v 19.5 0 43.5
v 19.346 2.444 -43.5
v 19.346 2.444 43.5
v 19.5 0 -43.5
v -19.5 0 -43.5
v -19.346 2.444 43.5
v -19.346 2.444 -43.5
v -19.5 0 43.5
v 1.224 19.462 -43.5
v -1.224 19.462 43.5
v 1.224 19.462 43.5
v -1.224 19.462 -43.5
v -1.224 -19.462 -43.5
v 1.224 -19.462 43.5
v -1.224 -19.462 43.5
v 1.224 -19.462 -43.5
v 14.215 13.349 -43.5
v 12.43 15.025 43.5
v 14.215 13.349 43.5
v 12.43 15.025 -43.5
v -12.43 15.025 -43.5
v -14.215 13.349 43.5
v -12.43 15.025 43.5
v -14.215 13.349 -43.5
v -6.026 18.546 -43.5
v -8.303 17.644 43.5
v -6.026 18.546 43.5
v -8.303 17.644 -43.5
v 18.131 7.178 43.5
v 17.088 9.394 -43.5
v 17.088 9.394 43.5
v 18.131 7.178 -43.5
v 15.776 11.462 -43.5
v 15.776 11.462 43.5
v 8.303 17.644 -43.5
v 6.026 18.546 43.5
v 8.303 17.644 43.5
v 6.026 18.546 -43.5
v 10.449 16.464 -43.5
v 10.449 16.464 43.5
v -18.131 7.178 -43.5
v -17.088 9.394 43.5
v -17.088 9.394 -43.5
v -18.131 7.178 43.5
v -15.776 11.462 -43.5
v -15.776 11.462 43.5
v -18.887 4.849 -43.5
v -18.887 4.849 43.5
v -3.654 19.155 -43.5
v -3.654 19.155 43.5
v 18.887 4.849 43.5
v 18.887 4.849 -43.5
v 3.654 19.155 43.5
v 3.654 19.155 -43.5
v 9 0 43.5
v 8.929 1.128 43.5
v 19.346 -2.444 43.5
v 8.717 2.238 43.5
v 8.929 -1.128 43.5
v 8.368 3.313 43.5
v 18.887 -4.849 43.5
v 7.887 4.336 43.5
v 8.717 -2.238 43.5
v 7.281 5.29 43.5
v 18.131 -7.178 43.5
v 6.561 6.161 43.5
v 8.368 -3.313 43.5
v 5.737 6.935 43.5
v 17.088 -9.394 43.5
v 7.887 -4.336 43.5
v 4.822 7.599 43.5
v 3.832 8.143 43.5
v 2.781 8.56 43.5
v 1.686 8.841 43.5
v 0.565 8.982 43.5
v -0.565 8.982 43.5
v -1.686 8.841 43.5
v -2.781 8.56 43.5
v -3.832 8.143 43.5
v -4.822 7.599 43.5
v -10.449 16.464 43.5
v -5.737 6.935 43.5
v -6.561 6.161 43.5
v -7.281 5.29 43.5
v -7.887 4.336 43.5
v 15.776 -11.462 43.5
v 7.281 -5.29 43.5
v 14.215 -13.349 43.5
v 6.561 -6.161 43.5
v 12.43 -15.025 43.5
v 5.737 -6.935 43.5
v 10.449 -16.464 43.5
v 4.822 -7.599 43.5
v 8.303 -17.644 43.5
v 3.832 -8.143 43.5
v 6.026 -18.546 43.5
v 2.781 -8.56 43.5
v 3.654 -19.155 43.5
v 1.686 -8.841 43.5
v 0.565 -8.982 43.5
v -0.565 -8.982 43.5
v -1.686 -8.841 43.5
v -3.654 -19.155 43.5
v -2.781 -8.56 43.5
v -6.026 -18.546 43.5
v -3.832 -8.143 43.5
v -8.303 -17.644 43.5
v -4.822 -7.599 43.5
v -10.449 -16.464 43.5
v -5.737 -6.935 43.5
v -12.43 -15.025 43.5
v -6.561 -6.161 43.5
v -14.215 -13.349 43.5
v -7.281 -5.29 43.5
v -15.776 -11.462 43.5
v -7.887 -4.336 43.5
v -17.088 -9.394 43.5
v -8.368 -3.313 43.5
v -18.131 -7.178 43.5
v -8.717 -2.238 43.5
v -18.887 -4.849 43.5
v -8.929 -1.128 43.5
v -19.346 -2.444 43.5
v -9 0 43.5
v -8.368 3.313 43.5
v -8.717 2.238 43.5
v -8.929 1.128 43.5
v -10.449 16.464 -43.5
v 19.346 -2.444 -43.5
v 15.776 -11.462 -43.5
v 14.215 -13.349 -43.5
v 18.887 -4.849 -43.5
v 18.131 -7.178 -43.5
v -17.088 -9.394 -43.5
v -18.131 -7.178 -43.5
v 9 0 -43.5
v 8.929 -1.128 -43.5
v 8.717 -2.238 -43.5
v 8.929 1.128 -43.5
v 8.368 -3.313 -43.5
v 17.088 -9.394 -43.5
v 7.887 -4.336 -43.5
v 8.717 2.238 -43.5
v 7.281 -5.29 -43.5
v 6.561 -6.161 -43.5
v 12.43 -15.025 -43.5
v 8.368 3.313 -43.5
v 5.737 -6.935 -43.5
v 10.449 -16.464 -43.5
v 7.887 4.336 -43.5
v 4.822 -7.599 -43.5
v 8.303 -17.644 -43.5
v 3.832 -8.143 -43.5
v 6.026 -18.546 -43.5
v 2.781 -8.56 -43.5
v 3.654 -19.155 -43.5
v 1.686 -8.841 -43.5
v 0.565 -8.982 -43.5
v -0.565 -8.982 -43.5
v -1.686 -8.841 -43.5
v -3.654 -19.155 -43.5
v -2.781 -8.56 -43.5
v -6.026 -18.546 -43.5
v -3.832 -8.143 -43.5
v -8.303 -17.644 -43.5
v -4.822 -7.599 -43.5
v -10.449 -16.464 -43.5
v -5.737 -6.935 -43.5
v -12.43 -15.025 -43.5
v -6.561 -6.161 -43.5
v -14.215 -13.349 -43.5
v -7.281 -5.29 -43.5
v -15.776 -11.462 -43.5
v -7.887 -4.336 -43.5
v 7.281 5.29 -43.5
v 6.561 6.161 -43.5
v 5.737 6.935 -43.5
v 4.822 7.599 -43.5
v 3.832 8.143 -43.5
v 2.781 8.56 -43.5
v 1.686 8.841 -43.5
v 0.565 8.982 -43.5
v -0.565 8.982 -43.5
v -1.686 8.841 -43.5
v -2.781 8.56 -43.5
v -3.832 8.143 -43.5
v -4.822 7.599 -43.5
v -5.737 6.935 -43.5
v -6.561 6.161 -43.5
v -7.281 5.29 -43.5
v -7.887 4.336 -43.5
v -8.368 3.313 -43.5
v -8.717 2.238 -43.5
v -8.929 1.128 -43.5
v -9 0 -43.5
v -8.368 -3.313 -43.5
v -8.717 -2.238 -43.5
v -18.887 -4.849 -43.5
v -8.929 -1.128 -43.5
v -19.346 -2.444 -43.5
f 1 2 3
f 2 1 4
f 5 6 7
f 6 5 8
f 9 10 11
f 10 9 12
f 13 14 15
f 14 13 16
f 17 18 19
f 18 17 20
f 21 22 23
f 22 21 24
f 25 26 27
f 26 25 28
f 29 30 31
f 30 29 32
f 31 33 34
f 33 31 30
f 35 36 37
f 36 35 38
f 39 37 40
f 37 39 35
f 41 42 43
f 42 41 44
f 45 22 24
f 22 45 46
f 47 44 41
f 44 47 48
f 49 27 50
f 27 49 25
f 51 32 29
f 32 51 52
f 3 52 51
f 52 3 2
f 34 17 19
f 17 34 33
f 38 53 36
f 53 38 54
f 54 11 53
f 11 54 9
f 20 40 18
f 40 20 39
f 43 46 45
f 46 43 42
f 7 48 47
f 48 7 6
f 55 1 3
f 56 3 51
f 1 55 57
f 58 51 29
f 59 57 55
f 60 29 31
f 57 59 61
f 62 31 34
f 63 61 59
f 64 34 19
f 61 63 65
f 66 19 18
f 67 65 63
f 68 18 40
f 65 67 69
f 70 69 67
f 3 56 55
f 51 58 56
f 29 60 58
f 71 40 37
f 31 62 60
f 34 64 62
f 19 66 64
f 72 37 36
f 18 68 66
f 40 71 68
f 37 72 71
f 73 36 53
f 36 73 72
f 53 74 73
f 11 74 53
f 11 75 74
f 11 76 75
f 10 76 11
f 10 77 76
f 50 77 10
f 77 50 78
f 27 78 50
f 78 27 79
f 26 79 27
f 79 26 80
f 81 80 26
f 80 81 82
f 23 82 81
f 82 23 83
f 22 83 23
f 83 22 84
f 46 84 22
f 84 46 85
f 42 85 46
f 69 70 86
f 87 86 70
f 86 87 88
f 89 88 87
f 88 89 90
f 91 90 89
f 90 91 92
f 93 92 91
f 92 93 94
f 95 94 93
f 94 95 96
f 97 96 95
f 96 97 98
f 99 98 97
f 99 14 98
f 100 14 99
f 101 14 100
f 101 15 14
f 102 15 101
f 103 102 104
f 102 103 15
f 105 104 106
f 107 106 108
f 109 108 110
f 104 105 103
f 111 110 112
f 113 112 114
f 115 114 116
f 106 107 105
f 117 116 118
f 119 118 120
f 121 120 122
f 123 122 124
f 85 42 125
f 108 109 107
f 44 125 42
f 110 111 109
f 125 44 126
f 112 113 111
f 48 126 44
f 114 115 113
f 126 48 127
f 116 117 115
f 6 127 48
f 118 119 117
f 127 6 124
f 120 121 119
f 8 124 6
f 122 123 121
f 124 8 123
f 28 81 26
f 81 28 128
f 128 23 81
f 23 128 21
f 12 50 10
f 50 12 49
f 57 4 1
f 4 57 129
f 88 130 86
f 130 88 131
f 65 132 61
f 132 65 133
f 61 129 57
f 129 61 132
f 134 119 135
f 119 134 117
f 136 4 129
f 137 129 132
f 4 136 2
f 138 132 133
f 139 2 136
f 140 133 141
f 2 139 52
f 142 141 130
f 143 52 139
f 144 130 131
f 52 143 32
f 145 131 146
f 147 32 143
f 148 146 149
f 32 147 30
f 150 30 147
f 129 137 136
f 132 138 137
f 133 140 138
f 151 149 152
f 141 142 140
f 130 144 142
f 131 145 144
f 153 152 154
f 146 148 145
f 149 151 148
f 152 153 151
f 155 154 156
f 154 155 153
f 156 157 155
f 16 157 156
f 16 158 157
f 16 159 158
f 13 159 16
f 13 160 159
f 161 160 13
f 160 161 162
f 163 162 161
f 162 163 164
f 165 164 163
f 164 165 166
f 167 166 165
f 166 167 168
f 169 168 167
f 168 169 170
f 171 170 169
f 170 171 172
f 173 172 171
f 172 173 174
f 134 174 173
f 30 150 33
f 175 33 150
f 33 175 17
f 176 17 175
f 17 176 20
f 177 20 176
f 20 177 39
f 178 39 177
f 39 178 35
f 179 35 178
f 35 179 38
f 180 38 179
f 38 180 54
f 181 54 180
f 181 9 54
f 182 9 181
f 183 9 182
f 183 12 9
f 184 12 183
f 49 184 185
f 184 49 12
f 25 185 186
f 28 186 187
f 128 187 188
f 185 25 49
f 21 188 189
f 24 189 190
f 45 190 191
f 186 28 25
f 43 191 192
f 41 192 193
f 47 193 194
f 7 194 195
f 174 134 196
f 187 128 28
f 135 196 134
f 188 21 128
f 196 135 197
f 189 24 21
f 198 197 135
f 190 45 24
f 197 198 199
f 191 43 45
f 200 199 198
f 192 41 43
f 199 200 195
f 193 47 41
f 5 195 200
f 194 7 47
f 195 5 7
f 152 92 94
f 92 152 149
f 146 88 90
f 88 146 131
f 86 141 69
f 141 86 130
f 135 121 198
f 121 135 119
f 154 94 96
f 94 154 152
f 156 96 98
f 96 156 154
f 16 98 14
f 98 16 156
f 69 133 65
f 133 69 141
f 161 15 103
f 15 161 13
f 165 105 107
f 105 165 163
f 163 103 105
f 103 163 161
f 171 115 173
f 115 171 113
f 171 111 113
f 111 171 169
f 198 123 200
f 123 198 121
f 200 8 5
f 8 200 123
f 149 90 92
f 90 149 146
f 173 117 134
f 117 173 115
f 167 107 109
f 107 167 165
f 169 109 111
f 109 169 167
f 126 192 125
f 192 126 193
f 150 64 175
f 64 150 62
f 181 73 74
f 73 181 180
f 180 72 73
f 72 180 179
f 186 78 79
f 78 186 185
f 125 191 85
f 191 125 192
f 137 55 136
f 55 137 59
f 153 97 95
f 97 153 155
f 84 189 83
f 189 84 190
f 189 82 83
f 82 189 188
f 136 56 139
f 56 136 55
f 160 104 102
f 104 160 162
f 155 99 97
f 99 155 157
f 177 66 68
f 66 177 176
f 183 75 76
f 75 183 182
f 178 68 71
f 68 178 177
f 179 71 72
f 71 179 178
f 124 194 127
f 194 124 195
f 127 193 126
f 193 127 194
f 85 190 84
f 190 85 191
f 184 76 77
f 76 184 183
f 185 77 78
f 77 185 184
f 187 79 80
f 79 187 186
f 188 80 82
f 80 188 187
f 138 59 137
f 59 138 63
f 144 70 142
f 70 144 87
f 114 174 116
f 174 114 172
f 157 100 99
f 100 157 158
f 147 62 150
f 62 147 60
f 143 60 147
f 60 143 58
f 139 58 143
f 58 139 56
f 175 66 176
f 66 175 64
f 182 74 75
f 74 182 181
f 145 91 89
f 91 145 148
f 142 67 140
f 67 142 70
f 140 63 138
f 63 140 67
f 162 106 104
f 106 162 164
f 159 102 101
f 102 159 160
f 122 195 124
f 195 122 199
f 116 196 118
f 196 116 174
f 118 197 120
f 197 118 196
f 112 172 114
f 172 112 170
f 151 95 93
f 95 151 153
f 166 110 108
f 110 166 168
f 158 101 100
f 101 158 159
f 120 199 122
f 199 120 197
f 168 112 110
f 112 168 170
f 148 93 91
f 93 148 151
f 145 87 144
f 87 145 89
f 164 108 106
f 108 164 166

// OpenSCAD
$fn = 50;


difference() {
	union() {
		translate(v = [0, 0, -43.5000000000]) {
			cylinder(h = 87, r = 19.5000000000);
		}
	}
	union() {
		translate(v = [0, 0, -100.0000000000]) {
			cylinder(h = 200, r = 9);
		}
	}
}
